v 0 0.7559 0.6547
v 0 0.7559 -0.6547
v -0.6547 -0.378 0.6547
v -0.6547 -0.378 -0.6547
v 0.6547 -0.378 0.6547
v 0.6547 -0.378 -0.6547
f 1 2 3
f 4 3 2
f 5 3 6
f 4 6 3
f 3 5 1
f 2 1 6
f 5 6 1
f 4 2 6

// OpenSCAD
polyhedron( points = [[-0.654653670727391, -0.377964473028483, 0.654653670677445], [2.3586634702857e-11, 0.755928945995301, 0.654653670677445], [0.654653670638811, -0.377964473028483, 0.654653670677445], [-0.654653670668608, -0.377964472994545, -0.654653670688757], [9.4792074308955e-11, 0.755928946050755, -0.654653670596035], [0.654653670638811, -0.377964472994545, -0.654653670747545]], faces = [[0, 1, 4, 3], [0, 3, 5, 2], [0, 2, 1], [1, 2, 5, 4], [3, 4, 5]]);
